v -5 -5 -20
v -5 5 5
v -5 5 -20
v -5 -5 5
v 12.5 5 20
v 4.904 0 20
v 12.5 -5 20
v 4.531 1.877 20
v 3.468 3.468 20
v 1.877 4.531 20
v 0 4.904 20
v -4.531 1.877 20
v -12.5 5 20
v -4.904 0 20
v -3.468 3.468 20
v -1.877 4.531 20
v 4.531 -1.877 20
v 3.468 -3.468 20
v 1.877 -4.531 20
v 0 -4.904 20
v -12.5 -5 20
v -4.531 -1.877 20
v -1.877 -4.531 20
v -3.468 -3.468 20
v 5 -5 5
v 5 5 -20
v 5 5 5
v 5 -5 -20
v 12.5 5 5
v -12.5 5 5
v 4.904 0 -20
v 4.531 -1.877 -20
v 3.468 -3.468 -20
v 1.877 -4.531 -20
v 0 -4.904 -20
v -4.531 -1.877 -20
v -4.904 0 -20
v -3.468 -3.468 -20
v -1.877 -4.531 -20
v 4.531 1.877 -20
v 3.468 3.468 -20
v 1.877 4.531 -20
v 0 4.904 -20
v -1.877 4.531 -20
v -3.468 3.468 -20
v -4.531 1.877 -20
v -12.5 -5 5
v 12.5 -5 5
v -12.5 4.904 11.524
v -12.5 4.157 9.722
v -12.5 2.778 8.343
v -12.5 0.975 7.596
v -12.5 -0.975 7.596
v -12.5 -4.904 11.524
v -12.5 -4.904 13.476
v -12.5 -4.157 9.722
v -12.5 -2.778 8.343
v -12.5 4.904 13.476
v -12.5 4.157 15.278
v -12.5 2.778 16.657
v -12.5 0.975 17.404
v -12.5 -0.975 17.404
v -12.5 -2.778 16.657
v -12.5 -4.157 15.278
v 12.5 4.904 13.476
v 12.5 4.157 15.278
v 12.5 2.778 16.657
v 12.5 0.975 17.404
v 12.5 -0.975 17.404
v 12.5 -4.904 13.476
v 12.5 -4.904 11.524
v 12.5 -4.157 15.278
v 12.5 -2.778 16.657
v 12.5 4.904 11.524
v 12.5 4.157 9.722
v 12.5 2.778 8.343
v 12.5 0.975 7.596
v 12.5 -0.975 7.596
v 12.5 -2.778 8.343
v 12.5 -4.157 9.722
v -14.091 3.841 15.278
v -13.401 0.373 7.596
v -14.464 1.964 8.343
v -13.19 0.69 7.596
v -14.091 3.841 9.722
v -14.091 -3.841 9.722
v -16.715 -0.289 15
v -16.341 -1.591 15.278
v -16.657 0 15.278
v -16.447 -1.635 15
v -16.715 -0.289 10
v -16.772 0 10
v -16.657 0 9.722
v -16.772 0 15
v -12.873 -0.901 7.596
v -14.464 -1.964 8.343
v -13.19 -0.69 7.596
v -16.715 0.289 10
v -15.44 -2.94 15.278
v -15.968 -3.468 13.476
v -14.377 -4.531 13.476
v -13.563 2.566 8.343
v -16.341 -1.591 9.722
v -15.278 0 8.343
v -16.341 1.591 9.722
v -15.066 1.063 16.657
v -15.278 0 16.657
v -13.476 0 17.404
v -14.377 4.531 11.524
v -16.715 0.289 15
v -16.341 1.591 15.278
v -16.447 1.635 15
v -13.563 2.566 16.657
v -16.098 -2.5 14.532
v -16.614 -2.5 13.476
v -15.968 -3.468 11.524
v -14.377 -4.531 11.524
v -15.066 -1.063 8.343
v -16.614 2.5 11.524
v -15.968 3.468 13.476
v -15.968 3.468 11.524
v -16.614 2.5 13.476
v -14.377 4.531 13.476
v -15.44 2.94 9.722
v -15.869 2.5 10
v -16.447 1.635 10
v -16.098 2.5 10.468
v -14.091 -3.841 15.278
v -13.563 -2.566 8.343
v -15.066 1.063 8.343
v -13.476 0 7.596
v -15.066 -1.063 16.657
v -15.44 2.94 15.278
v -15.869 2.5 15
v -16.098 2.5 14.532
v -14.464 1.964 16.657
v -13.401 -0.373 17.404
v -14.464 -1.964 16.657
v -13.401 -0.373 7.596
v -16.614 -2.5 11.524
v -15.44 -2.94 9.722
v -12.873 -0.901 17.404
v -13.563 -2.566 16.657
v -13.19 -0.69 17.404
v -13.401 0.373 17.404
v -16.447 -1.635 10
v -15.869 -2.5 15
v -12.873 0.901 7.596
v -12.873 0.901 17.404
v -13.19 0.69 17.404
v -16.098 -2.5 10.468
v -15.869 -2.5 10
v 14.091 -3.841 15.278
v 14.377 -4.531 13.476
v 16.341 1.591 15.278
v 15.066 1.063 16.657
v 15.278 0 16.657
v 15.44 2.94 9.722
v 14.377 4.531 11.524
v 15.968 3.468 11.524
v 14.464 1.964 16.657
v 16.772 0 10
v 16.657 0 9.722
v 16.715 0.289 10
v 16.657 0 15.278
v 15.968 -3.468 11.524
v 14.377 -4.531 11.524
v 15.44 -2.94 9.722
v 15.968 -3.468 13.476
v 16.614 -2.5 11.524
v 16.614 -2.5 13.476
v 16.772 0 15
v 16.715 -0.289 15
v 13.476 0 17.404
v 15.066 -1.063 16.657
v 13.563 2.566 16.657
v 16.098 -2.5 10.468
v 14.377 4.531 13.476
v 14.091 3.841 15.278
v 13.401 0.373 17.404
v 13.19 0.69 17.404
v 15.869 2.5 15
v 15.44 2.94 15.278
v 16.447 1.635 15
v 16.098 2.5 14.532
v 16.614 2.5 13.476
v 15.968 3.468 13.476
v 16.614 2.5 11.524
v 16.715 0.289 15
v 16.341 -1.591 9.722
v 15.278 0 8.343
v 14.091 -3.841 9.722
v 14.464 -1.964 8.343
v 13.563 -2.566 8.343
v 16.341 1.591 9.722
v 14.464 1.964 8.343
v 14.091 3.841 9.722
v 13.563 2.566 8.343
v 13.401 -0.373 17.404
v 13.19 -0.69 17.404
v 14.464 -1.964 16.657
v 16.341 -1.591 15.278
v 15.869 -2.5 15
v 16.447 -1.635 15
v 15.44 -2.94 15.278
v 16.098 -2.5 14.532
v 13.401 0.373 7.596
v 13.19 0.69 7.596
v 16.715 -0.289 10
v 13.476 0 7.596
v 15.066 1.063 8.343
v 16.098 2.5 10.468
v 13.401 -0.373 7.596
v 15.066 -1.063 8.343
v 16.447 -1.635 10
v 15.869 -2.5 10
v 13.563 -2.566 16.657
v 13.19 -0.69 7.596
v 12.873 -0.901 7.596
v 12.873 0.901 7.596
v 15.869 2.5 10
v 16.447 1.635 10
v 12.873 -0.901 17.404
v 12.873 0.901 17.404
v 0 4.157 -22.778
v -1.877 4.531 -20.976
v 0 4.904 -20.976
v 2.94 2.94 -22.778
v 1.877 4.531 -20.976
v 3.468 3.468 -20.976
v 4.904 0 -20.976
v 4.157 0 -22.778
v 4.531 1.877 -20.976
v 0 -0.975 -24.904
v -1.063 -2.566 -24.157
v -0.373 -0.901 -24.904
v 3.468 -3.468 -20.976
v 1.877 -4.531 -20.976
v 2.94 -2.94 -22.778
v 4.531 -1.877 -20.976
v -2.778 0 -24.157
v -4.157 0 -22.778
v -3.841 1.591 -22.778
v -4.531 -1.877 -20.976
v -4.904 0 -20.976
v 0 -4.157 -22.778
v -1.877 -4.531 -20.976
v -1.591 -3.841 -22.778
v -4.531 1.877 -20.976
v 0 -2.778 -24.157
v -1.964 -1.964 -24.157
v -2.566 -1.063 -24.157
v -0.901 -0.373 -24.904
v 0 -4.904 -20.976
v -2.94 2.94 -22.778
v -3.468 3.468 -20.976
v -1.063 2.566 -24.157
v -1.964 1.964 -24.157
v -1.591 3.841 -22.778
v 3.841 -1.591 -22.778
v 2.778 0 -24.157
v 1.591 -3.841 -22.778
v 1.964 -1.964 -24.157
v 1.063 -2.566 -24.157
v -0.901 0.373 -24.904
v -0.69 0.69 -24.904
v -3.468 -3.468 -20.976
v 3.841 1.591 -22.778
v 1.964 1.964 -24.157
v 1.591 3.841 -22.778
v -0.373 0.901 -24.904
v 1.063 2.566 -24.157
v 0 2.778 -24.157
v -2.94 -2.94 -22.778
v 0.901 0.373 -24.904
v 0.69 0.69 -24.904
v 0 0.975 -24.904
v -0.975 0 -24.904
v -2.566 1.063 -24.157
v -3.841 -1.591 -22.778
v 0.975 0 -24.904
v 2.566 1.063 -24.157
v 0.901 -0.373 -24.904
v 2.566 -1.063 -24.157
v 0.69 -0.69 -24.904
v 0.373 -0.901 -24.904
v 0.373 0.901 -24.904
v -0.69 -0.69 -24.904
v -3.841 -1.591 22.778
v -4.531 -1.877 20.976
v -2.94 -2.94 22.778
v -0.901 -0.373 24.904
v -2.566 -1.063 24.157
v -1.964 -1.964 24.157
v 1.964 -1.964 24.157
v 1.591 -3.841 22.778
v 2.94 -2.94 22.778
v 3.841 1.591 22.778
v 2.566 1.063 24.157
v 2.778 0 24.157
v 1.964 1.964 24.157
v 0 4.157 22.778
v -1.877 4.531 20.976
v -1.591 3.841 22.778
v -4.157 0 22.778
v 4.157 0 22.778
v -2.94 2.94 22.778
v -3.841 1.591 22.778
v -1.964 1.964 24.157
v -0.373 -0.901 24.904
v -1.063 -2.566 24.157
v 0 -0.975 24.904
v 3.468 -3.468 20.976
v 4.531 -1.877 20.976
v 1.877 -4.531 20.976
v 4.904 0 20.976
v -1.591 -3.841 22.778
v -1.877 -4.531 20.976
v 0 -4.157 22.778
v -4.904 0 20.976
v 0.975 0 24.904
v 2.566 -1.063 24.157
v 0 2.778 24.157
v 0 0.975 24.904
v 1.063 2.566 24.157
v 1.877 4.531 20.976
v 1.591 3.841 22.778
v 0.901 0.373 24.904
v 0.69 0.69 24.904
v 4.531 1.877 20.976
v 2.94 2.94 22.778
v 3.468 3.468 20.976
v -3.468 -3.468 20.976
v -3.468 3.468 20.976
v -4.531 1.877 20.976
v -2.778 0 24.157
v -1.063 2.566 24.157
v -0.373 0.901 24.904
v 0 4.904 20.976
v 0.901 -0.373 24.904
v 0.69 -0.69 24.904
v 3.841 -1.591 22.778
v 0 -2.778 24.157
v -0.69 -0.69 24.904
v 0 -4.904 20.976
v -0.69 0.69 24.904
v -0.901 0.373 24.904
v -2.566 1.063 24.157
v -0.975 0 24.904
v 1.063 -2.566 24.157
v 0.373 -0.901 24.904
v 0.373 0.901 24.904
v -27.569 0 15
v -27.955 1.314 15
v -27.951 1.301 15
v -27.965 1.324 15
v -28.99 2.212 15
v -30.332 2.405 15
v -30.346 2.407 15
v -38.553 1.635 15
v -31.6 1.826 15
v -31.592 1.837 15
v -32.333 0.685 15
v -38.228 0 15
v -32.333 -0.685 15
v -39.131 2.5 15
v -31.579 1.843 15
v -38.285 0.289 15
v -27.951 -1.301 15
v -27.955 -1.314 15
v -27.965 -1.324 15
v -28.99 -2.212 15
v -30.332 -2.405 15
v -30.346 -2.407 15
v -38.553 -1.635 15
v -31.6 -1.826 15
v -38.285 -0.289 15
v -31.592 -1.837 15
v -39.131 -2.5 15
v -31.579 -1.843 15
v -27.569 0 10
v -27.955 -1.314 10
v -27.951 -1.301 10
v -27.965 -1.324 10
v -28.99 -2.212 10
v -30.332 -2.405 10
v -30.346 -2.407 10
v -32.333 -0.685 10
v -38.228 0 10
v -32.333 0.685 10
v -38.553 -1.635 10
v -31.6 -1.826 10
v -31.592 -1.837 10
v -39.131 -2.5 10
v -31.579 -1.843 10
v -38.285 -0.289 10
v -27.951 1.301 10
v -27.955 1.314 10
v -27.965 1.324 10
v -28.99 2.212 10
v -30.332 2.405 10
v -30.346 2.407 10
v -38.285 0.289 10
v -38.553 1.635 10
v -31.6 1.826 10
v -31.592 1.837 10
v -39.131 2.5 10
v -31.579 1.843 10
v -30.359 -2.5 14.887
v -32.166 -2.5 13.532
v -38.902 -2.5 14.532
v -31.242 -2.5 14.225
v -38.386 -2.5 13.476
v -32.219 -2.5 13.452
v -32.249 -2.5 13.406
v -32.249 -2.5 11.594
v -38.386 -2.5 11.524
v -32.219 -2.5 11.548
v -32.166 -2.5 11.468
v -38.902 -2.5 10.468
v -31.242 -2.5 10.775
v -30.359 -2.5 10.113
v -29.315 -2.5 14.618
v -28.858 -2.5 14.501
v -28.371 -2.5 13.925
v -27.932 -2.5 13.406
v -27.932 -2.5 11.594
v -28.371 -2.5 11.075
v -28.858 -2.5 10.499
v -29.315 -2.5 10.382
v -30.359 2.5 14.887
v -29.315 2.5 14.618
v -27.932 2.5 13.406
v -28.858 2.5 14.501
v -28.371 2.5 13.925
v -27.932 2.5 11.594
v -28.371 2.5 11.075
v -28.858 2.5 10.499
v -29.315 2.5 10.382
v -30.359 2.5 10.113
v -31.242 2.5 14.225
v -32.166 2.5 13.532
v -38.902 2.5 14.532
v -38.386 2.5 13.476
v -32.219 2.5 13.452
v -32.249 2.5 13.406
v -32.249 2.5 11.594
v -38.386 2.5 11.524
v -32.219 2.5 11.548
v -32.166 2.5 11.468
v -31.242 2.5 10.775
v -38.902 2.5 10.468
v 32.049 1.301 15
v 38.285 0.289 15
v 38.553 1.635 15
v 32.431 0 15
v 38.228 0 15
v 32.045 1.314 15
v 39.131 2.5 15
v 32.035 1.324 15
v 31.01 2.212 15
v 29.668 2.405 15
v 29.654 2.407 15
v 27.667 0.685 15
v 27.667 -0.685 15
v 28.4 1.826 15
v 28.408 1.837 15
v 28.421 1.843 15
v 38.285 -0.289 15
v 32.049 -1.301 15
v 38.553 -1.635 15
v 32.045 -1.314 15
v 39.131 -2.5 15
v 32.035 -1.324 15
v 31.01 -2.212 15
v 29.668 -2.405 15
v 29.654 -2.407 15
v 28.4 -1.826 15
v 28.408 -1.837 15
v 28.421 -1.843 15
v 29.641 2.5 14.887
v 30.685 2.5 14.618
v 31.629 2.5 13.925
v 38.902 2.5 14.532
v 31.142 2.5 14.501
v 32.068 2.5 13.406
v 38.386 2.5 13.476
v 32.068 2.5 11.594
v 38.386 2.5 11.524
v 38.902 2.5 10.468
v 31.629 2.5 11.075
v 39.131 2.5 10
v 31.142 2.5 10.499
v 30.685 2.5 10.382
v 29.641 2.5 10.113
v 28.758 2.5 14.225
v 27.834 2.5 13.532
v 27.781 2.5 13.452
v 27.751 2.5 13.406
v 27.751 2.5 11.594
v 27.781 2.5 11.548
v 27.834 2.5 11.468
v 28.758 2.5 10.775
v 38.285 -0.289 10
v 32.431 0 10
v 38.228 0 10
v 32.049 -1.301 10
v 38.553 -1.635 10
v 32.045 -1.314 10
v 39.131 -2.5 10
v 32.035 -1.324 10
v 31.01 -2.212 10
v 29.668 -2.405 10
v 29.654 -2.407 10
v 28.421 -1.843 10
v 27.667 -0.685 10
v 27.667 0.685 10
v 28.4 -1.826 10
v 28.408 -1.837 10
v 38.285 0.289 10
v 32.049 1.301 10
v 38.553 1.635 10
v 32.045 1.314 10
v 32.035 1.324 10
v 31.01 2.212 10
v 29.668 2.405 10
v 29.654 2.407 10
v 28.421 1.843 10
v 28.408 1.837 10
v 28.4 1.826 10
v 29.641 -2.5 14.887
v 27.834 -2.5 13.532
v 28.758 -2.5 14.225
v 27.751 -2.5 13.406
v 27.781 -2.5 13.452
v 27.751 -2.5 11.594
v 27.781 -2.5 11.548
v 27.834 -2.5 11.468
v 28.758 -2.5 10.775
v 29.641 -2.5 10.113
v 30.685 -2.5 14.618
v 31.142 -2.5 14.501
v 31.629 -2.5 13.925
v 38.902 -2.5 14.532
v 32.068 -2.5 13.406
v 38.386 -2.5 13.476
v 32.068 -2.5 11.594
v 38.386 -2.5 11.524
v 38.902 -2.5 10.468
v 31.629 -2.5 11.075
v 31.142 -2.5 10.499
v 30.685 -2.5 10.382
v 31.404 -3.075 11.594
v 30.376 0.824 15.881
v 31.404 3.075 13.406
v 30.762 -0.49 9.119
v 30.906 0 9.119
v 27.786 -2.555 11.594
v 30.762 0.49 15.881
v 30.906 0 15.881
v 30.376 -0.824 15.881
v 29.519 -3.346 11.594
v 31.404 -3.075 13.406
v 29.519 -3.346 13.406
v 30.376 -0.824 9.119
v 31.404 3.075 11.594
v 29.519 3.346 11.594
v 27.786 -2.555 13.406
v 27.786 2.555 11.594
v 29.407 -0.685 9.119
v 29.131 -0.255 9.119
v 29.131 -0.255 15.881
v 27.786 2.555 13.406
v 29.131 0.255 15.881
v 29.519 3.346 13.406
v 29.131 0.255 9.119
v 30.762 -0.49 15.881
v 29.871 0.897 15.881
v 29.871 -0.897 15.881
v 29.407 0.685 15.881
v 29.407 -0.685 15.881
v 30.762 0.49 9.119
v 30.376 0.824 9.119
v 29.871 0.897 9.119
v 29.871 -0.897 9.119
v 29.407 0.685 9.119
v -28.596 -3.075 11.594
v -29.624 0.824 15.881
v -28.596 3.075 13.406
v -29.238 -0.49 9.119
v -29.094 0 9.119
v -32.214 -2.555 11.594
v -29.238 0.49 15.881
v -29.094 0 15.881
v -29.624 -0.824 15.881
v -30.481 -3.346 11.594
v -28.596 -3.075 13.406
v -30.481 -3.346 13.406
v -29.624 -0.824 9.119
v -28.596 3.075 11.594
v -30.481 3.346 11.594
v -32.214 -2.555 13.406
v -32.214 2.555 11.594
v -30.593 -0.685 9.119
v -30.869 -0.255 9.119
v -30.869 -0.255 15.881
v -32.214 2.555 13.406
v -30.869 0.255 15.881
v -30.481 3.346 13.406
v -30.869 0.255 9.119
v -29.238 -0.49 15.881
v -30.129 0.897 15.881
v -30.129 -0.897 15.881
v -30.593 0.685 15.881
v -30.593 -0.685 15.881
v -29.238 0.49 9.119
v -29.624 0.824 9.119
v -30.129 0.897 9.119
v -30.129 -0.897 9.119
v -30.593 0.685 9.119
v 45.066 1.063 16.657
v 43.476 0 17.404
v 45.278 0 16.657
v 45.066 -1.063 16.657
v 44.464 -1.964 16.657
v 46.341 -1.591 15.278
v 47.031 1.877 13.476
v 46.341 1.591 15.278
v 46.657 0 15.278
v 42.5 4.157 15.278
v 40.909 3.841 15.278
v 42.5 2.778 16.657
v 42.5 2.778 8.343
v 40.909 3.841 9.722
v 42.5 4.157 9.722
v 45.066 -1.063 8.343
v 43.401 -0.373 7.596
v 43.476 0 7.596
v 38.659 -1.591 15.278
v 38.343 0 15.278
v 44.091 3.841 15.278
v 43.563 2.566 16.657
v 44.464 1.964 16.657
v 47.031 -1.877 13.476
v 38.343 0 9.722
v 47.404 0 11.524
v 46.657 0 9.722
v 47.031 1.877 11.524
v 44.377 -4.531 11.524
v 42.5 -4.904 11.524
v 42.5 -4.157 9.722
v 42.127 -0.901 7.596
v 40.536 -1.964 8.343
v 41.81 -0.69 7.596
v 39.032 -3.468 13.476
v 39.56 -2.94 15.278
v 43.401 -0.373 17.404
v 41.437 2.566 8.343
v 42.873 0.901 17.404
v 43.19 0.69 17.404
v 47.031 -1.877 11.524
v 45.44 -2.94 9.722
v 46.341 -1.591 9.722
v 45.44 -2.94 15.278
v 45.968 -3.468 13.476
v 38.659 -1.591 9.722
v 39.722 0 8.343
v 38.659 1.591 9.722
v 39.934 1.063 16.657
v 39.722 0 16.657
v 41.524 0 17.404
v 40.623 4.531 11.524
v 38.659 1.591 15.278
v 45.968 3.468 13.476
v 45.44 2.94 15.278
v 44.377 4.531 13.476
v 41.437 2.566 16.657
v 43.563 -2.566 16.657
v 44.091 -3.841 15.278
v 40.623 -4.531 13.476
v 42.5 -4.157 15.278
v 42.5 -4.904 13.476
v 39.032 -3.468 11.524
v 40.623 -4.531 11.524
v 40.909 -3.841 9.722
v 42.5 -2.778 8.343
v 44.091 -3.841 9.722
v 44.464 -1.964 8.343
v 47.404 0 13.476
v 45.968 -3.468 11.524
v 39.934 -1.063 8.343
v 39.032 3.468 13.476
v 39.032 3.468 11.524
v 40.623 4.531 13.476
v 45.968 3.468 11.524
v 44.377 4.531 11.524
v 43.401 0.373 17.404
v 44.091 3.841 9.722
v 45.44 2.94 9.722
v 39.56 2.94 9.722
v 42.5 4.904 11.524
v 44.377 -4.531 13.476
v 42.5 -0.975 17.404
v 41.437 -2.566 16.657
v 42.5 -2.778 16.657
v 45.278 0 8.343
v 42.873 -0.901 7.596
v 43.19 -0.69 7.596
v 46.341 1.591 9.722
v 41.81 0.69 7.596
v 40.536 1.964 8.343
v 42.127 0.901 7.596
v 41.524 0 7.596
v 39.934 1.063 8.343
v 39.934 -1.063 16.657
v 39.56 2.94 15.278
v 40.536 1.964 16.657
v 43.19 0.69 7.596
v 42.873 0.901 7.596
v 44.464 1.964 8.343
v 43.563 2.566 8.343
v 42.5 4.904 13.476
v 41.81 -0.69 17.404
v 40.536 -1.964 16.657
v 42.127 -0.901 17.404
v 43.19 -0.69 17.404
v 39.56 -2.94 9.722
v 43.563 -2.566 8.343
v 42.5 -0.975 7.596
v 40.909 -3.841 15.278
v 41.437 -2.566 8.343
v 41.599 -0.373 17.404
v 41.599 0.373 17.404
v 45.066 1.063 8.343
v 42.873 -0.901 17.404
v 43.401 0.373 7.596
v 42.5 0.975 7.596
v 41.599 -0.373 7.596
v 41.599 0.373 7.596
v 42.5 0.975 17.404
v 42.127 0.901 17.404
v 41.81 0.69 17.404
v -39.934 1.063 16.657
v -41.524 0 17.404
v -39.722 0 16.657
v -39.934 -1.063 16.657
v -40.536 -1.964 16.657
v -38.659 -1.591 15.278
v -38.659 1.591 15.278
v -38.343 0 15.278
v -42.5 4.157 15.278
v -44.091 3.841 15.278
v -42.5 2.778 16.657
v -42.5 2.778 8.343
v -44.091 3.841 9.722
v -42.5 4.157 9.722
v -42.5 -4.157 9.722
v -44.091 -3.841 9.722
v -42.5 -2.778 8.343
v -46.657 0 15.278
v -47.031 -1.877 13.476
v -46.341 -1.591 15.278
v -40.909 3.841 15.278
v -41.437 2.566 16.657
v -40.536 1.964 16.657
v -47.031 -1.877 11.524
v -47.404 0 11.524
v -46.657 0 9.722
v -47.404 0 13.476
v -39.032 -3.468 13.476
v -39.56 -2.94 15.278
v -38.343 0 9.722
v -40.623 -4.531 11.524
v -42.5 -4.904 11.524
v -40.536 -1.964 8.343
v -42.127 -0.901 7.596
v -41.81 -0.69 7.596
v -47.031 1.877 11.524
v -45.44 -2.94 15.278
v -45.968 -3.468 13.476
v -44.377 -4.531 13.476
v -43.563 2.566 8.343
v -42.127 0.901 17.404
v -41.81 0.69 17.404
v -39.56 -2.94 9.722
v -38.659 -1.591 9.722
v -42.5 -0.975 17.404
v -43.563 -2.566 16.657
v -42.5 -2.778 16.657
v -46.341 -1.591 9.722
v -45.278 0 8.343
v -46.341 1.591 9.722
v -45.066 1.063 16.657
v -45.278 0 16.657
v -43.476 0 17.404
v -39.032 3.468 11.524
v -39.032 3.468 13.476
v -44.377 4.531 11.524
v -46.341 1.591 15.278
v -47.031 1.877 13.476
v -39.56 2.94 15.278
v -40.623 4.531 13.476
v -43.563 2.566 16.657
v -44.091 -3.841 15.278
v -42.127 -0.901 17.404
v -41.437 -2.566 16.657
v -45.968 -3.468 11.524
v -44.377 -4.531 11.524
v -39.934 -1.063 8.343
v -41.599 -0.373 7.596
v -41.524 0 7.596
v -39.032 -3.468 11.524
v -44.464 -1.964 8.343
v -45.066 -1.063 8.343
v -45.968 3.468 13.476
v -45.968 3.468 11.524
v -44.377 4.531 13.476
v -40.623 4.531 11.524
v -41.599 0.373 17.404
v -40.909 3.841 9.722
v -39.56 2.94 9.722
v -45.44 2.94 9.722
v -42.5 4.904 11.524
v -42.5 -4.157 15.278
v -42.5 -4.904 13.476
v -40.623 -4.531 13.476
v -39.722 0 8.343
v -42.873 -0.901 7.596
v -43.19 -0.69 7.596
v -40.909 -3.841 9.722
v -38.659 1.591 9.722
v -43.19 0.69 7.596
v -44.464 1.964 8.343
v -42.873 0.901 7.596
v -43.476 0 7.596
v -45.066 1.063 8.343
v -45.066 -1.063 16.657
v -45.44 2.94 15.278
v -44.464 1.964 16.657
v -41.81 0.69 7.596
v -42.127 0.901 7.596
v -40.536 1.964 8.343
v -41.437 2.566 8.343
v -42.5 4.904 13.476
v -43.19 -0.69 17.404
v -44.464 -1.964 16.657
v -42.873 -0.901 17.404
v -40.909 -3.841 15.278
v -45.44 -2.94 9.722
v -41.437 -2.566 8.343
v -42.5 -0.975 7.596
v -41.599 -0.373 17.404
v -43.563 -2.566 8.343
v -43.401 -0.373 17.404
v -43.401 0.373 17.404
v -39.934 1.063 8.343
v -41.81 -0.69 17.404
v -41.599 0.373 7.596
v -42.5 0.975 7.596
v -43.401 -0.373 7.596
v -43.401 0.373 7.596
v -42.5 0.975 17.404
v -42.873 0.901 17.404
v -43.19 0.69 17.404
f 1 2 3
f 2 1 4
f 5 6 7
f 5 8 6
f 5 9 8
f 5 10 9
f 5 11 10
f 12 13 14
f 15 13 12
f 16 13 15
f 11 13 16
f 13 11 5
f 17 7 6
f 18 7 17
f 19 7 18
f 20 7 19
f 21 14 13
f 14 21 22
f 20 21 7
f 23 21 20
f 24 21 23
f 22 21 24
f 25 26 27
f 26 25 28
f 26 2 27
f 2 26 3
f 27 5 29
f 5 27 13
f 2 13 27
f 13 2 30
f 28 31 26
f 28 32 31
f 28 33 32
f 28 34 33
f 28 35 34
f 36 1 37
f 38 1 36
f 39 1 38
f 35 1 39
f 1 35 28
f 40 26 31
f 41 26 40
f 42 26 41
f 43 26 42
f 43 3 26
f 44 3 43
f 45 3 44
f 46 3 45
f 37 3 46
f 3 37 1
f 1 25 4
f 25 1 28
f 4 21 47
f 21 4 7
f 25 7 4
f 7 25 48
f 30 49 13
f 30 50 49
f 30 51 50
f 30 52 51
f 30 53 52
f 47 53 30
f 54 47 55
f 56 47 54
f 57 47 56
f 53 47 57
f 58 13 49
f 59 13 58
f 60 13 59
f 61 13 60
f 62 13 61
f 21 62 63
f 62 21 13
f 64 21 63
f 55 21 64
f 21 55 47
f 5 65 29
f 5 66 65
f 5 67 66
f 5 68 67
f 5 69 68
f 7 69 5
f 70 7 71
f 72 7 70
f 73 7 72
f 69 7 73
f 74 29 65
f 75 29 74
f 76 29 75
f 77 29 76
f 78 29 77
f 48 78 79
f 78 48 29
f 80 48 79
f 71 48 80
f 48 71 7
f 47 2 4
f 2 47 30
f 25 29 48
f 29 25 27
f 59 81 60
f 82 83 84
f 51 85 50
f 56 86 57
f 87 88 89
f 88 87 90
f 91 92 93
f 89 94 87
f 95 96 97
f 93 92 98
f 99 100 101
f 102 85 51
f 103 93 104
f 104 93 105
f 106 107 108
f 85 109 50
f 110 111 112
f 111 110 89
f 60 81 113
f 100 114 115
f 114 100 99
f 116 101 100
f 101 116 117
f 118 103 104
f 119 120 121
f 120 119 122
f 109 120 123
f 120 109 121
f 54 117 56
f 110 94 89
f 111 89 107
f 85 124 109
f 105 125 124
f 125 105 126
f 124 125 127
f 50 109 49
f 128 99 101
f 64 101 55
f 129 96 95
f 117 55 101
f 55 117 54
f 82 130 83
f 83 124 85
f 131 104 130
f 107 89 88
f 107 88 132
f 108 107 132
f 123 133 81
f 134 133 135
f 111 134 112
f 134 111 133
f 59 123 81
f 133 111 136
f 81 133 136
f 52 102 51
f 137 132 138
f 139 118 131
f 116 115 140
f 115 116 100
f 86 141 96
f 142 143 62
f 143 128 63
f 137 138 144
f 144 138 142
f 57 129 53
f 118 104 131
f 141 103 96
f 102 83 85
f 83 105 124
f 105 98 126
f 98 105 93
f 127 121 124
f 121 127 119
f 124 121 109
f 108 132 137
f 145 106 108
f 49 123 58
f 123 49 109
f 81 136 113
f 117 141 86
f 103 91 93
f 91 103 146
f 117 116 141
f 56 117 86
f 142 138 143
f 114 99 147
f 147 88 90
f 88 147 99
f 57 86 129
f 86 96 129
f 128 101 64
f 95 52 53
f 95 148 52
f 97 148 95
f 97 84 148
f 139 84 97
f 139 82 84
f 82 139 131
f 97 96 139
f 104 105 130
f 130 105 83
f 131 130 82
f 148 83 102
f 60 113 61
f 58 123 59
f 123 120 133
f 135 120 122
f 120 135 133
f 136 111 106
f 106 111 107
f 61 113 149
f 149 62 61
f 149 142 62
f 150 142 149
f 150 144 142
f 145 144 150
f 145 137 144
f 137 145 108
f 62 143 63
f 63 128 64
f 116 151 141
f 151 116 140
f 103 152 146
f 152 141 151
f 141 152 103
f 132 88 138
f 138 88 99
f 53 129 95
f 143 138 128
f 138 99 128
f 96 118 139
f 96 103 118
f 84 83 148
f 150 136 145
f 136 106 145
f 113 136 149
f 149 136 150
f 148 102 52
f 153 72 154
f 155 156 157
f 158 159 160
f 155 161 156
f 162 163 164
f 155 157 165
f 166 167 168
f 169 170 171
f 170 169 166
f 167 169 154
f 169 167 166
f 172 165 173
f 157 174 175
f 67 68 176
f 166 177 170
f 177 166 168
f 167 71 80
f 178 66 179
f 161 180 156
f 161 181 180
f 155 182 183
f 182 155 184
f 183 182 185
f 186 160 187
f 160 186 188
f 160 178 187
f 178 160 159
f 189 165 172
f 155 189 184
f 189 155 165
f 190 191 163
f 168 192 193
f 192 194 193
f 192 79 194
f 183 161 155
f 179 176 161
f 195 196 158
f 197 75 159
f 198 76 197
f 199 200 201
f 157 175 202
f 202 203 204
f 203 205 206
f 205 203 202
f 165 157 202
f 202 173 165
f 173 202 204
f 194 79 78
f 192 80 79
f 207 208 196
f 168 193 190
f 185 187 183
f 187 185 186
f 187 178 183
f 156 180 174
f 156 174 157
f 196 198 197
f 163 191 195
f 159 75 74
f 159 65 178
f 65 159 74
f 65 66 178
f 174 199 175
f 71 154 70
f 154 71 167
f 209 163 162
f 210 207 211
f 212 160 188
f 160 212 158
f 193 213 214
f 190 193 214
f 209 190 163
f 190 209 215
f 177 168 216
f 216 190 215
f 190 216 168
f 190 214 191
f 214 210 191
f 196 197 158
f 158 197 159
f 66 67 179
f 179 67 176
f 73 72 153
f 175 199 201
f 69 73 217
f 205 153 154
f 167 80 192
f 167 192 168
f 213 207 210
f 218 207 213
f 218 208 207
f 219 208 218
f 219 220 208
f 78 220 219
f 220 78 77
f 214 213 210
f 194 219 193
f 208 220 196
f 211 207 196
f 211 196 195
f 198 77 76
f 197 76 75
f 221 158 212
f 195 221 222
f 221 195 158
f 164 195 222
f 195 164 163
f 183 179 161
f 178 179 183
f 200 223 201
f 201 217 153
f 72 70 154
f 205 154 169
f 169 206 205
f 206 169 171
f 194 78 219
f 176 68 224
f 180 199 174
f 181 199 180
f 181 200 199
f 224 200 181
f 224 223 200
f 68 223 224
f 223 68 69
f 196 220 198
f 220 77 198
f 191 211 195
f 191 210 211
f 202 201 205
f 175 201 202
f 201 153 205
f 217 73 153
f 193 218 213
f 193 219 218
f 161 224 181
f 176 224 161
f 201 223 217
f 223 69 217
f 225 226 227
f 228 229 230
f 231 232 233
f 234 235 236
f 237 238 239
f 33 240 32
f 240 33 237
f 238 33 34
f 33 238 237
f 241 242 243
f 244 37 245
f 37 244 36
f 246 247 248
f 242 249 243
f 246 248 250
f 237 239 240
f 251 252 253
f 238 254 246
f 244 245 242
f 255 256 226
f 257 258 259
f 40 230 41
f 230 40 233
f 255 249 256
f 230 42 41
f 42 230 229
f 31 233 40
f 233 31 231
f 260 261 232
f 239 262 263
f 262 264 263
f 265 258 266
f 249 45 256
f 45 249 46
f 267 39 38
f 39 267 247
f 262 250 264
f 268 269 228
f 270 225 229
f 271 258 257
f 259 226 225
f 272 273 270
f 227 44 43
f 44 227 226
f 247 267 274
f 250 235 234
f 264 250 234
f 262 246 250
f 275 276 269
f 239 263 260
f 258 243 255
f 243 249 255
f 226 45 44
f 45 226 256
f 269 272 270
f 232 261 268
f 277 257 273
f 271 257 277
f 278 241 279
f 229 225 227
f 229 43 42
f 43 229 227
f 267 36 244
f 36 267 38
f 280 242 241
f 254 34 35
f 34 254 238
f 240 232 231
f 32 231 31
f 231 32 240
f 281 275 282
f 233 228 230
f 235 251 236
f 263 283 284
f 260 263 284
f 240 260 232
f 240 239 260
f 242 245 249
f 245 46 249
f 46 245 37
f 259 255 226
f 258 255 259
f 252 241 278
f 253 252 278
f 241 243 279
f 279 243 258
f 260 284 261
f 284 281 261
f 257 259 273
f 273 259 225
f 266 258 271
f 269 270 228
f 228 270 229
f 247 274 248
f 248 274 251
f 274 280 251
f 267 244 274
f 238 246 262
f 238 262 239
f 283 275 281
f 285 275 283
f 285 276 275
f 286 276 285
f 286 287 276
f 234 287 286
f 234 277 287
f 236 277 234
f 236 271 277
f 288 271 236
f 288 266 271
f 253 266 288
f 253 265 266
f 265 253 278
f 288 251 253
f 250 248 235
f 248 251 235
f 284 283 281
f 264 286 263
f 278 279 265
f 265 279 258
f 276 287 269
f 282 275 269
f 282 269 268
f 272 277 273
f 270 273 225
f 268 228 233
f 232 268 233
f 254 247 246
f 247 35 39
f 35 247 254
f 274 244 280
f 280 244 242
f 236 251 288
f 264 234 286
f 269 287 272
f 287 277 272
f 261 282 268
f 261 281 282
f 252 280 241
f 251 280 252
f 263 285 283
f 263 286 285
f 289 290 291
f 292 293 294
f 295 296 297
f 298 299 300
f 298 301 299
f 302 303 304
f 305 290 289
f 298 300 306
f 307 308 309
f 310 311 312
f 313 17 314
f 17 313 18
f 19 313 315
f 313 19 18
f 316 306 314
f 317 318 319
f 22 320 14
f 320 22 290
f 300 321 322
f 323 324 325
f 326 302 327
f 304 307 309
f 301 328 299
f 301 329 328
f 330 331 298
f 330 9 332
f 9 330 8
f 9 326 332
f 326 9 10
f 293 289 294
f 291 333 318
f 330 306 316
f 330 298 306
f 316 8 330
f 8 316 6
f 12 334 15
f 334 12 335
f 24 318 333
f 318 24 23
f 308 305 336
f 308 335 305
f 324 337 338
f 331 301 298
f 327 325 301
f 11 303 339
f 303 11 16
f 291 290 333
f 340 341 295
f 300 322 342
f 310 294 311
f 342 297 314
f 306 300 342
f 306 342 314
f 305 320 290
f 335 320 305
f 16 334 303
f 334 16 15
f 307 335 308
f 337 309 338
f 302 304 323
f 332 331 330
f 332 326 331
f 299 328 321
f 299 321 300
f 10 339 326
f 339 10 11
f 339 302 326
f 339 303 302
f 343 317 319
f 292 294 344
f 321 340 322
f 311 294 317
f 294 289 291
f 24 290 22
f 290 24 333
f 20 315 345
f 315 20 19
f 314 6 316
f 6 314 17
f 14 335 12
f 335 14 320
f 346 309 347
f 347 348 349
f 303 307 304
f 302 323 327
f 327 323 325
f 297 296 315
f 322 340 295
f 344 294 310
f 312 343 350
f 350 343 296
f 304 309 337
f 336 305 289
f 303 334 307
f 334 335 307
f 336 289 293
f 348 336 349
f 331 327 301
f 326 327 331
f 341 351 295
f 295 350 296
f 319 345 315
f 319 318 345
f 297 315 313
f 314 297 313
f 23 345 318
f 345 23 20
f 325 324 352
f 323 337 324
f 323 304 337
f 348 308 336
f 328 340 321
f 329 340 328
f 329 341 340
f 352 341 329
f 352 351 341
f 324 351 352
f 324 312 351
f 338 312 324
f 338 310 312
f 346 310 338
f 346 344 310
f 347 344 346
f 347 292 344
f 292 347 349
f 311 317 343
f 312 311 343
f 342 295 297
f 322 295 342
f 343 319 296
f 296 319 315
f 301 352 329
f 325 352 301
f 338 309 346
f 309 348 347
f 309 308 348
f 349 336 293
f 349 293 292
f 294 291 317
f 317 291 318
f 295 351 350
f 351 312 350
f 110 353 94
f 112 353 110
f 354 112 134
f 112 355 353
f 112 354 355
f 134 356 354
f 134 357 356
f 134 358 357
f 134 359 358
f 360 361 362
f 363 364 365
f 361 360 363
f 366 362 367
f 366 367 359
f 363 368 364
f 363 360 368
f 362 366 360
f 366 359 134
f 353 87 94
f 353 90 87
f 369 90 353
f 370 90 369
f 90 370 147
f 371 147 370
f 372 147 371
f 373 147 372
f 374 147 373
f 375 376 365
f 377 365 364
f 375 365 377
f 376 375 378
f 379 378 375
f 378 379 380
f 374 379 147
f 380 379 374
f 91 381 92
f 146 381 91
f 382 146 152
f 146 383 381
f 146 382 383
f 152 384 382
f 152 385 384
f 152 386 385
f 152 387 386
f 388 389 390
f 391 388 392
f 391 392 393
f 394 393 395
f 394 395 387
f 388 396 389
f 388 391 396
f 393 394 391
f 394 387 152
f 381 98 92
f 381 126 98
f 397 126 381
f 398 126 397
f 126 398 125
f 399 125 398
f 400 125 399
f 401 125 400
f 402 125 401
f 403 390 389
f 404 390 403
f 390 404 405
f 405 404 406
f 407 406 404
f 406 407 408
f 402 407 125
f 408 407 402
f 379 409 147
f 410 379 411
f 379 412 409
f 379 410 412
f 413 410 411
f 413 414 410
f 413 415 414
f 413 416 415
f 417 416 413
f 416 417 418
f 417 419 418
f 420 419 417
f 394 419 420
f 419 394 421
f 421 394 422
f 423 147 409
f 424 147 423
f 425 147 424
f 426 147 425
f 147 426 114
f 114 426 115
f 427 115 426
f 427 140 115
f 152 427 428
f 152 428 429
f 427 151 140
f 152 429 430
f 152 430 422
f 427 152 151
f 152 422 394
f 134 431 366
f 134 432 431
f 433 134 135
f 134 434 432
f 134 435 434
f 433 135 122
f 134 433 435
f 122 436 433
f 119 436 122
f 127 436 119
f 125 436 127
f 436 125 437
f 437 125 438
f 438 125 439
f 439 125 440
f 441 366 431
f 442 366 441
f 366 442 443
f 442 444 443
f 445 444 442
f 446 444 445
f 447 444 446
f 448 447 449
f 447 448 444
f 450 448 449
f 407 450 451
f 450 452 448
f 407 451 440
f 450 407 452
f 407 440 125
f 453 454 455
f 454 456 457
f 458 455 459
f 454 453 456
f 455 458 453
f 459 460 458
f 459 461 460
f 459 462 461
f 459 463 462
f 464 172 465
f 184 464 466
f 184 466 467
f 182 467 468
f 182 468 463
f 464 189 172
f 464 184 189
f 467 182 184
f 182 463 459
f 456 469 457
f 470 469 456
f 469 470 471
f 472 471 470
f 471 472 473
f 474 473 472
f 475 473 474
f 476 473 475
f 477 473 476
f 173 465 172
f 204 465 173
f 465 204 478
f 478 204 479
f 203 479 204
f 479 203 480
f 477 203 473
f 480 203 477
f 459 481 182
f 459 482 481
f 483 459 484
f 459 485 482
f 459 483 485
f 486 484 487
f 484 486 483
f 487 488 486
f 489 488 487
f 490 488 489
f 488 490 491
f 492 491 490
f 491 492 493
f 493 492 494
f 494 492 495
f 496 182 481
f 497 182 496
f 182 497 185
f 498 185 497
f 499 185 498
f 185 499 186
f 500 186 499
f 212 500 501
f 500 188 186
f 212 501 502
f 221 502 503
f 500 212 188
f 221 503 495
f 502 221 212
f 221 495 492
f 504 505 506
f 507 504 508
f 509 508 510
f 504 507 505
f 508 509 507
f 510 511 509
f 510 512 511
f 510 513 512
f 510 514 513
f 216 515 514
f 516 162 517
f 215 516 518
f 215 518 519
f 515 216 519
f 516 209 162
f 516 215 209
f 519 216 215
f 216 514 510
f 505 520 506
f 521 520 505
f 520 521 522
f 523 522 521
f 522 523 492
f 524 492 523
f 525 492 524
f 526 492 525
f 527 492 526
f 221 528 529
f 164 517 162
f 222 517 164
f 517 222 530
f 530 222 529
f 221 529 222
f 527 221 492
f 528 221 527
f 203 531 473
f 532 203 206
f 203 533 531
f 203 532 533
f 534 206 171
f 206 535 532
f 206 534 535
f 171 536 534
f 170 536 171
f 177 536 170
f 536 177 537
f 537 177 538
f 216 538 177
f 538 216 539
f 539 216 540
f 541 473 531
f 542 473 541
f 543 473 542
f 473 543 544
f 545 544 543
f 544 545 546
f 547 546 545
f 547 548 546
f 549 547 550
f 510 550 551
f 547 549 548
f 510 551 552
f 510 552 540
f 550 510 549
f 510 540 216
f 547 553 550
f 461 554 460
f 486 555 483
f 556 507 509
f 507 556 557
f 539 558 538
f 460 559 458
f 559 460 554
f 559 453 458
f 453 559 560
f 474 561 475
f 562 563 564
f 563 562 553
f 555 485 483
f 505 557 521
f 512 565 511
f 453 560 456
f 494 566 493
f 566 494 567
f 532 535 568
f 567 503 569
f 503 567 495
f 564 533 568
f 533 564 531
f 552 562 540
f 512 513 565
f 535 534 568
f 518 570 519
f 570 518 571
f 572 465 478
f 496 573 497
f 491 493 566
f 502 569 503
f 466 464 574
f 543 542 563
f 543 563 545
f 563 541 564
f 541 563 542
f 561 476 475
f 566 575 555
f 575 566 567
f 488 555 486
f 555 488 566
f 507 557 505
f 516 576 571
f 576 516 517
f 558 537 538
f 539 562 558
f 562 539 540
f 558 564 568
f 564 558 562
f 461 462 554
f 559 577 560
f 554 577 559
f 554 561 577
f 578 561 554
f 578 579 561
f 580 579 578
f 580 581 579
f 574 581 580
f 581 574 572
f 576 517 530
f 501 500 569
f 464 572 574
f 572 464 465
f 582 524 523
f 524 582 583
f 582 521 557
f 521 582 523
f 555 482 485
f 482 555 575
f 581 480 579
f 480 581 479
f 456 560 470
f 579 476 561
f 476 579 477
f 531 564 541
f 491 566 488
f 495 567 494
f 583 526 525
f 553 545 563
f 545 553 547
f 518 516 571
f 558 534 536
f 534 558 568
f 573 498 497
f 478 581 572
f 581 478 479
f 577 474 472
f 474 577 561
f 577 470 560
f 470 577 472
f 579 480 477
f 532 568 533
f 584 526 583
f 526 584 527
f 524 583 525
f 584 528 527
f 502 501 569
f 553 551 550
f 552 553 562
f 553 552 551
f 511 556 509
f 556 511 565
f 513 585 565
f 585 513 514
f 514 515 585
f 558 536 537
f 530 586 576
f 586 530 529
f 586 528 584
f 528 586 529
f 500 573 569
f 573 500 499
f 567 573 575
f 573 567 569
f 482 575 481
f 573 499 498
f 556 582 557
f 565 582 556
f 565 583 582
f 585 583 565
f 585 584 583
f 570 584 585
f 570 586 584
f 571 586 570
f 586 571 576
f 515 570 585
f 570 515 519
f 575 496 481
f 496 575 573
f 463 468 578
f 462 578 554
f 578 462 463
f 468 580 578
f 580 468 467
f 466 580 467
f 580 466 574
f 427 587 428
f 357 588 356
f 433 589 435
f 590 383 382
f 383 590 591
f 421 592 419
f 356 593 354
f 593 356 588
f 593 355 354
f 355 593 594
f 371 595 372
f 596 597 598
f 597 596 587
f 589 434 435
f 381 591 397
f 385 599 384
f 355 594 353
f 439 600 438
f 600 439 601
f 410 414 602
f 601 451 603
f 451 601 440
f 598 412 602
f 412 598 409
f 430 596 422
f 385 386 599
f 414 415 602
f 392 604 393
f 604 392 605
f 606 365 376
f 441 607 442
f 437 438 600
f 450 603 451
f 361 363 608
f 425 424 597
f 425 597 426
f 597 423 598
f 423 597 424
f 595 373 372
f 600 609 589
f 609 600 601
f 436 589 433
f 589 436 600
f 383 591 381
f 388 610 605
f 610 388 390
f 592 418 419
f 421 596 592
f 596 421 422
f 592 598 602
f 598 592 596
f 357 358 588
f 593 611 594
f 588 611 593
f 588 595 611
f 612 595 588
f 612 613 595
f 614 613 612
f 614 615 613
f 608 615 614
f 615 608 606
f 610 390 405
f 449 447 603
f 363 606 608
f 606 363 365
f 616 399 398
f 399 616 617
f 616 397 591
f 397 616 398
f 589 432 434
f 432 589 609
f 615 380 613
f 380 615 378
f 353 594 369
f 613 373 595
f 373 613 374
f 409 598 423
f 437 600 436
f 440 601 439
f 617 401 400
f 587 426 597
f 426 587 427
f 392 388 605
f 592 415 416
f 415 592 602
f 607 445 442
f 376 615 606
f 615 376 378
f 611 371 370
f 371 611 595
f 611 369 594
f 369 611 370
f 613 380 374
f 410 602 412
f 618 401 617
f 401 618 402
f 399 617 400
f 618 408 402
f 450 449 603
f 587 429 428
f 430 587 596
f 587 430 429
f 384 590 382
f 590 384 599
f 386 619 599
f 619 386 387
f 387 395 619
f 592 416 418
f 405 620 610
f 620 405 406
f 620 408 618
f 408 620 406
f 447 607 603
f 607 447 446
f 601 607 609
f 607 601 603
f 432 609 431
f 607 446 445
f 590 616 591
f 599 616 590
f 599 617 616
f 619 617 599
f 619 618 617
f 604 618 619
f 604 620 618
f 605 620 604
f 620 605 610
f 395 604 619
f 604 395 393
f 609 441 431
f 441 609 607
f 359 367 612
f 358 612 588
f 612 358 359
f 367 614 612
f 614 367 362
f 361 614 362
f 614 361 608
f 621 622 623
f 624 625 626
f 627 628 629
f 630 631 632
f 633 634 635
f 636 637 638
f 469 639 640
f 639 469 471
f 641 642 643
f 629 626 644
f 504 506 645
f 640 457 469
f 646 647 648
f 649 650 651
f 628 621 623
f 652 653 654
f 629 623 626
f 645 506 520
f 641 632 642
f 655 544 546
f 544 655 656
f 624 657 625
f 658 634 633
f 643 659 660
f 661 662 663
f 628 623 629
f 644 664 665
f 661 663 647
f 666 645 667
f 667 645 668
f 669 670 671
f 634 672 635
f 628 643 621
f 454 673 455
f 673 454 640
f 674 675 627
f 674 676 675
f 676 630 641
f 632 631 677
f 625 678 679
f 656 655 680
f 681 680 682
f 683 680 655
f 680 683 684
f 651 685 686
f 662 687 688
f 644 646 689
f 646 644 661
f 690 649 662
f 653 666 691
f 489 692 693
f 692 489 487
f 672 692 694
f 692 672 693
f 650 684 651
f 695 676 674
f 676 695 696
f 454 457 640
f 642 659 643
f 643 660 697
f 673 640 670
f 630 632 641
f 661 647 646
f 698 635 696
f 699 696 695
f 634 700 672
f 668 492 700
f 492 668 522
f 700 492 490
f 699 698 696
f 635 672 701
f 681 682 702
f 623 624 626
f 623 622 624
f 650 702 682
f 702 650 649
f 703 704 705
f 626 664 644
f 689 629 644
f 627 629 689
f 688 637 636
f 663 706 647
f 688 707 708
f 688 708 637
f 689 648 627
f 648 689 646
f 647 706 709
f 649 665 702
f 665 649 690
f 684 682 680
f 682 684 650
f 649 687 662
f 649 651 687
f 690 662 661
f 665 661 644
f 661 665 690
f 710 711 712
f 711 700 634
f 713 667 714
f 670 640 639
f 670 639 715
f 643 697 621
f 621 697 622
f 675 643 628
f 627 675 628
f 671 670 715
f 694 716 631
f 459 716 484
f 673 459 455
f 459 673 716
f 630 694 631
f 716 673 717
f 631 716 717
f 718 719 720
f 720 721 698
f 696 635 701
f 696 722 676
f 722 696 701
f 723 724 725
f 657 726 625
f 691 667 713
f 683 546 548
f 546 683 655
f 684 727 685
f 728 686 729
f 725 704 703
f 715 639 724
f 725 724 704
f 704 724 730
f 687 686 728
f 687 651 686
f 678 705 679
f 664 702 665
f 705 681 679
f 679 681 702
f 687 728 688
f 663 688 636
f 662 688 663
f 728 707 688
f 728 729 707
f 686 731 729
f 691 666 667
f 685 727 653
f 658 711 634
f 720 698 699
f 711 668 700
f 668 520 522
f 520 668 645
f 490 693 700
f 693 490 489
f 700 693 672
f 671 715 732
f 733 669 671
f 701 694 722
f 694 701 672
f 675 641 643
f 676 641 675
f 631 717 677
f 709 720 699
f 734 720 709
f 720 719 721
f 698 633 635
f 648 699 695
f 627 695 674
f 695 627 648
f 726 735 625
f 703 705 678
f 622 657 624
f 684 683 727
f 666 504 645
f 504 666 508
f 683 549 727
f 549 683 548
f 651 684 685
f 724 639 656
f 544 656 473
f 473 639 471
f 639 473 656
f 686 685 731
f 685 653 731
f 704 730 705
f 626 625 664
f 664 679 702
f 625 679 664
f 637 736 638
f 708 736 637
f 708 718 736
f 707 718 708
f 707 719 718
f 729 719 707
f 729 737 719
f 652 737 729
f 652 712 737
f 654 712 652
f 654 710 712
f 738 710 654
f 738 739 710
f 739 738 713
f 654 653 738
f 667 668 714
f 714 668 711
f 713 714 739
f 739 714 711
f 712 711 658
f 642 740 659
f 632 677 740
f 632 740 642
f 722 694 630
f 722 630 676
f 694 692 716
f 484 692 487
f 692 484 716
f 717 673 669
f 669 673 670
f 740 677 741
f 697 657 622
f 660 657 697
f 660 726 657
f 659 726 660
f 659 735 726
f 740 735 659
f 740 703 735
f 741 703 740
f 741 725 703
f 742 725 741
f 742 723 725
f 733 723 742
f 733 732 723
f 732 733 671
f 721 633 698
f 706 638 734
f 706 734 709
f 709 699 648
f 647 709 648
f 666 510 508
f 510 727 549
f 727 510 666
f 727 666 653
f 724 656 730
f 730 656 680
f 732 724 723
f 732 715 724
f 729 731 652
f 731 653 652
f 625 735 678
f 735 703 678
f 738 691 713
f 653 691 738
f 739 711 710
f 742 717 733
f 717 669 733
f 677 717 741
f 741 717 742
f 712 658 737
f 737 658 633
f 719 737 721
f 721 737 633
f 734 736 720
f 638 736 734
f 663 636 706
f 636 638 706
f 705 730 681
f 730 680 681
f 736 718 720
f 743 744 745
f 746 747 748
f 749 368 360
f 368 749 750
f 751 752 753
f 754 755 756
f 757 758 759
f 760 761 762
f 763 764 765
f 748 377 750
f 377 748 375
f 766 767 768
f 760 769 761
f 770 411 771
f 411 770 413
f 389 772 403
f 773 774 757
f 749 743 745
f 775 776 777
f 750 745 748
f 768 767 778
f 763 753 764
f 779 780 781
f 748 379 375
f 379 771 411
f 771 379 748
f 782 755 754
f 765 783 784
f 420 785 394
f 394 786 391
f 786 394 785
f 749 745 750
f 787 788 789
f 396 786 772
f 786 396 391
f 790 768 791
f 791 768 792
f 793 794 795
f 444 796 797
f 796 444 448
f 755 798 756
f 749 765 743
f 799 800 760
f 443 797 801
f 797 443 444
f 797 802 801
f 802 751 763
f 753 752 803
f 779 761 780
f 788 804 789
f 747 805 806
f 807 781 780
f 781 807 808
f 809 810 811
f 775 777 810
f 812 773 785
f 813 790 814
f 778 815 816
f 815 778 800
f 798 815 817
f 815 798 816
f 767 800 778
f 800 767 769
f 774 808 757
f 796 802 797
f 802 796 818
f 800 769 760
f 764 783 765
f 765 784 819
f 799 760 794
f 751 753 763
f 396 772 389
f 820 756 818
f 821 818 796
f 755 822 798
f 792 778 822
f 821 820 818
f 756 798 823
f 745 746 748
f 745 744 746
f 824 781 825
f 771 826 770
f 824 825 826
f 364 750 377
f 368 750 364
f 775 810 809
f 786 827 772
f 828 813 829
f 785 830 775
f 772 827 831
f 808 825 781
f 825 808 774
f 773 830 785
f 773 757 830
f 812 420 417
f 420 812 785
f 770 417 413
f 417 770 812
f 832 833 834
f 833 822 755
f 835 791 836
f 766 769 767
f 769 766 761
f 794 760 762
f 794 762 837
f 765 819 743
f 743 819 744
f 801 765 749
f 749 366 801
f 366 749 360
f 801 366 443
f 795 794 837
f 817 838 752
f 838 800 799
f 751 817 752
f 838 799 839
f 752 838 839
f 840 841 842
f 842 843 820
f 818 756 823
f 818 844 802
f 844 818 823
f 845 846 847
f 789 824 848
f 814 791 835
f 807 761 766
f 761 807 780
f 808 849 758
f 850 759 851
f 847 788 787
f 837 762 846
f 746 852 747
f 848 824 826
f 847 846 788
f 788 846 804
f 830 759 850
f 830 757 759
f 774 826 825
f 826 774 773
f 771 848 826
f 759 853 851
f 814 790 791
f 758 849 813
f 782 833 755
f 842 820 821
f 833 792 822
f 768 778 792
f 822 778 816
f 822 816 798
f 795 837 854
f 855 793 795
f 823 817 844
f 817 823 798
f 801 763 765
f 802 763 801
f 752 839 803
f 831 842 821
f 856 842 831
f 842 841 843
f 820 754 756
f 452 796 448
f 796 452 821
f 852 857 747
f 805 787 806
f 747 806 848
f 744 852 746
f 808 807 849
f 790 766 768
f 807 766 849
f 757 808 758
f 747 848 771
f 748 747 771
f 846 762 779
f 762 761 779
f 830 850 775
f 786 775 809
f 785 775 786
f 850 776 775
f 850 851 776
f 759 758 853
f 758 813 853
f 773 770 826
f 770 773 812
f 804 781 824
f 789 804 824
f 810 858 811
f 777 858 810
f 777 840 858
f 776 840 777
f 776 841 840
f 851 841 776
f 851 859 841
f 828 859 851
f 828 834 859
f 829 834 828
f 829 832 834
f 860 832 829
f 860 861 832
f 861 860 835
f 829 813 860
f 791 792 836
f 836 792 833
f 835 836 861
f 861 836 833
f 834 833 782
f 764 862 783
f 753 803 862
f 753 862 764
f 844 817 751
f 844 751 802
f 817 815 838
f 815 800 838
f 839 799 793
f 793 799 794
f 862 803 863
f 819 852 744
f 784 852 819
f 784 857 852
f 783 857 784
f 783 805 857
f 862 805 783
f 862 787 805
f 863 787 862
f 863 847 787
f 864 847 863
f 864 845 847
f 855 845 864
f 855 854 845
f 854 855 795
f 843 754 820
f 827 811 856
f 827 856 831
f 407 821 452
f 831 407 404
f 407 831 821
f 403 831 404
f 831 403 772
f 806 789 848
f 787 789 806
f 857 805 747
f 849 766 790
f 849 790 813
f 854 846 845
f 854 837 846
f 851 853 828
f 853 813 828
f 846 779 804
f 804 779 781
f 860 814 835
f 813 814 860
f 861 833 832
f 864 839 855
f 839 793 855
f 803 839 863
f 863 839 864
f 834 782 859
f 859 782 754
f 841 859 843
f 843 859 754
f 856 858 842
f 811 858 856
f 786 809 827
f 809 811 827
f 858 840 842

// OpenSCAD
translate([0, 0, 0]) cube([10, 10, 40], center = true);
translate([0, 0, 12.5]) cube([25, 10, 15], center = true);

translate([-12.5, 0, 12.5]) sphere(5);
translate([12.5, 0, 12.5]) sphere(5);
translate([0, 0, -20]) sphere(5);
translate([0, 0, 20]) sphere(5);

translate([-22.5, 0, 12.5]) cube([15, 5, 5], center = true);
translate([22.5, 0, 12.5]) cube([15, 5, 5], center = true);
translate([30, 0, 12.5]) sphere(3.5);
translate([-30, 0, 12.5]) sphere(3.5);

translate([37.5, 0, 12.5]) cube([15, 5, 5], center = true);
translate([-37.5, 0, 12.5]) cube([15, 5, 5], center = true);
translate([42.5, 0, 12.5]) sphere(5);
translate([-42.5, 0, 12.5]) sphere(5);
